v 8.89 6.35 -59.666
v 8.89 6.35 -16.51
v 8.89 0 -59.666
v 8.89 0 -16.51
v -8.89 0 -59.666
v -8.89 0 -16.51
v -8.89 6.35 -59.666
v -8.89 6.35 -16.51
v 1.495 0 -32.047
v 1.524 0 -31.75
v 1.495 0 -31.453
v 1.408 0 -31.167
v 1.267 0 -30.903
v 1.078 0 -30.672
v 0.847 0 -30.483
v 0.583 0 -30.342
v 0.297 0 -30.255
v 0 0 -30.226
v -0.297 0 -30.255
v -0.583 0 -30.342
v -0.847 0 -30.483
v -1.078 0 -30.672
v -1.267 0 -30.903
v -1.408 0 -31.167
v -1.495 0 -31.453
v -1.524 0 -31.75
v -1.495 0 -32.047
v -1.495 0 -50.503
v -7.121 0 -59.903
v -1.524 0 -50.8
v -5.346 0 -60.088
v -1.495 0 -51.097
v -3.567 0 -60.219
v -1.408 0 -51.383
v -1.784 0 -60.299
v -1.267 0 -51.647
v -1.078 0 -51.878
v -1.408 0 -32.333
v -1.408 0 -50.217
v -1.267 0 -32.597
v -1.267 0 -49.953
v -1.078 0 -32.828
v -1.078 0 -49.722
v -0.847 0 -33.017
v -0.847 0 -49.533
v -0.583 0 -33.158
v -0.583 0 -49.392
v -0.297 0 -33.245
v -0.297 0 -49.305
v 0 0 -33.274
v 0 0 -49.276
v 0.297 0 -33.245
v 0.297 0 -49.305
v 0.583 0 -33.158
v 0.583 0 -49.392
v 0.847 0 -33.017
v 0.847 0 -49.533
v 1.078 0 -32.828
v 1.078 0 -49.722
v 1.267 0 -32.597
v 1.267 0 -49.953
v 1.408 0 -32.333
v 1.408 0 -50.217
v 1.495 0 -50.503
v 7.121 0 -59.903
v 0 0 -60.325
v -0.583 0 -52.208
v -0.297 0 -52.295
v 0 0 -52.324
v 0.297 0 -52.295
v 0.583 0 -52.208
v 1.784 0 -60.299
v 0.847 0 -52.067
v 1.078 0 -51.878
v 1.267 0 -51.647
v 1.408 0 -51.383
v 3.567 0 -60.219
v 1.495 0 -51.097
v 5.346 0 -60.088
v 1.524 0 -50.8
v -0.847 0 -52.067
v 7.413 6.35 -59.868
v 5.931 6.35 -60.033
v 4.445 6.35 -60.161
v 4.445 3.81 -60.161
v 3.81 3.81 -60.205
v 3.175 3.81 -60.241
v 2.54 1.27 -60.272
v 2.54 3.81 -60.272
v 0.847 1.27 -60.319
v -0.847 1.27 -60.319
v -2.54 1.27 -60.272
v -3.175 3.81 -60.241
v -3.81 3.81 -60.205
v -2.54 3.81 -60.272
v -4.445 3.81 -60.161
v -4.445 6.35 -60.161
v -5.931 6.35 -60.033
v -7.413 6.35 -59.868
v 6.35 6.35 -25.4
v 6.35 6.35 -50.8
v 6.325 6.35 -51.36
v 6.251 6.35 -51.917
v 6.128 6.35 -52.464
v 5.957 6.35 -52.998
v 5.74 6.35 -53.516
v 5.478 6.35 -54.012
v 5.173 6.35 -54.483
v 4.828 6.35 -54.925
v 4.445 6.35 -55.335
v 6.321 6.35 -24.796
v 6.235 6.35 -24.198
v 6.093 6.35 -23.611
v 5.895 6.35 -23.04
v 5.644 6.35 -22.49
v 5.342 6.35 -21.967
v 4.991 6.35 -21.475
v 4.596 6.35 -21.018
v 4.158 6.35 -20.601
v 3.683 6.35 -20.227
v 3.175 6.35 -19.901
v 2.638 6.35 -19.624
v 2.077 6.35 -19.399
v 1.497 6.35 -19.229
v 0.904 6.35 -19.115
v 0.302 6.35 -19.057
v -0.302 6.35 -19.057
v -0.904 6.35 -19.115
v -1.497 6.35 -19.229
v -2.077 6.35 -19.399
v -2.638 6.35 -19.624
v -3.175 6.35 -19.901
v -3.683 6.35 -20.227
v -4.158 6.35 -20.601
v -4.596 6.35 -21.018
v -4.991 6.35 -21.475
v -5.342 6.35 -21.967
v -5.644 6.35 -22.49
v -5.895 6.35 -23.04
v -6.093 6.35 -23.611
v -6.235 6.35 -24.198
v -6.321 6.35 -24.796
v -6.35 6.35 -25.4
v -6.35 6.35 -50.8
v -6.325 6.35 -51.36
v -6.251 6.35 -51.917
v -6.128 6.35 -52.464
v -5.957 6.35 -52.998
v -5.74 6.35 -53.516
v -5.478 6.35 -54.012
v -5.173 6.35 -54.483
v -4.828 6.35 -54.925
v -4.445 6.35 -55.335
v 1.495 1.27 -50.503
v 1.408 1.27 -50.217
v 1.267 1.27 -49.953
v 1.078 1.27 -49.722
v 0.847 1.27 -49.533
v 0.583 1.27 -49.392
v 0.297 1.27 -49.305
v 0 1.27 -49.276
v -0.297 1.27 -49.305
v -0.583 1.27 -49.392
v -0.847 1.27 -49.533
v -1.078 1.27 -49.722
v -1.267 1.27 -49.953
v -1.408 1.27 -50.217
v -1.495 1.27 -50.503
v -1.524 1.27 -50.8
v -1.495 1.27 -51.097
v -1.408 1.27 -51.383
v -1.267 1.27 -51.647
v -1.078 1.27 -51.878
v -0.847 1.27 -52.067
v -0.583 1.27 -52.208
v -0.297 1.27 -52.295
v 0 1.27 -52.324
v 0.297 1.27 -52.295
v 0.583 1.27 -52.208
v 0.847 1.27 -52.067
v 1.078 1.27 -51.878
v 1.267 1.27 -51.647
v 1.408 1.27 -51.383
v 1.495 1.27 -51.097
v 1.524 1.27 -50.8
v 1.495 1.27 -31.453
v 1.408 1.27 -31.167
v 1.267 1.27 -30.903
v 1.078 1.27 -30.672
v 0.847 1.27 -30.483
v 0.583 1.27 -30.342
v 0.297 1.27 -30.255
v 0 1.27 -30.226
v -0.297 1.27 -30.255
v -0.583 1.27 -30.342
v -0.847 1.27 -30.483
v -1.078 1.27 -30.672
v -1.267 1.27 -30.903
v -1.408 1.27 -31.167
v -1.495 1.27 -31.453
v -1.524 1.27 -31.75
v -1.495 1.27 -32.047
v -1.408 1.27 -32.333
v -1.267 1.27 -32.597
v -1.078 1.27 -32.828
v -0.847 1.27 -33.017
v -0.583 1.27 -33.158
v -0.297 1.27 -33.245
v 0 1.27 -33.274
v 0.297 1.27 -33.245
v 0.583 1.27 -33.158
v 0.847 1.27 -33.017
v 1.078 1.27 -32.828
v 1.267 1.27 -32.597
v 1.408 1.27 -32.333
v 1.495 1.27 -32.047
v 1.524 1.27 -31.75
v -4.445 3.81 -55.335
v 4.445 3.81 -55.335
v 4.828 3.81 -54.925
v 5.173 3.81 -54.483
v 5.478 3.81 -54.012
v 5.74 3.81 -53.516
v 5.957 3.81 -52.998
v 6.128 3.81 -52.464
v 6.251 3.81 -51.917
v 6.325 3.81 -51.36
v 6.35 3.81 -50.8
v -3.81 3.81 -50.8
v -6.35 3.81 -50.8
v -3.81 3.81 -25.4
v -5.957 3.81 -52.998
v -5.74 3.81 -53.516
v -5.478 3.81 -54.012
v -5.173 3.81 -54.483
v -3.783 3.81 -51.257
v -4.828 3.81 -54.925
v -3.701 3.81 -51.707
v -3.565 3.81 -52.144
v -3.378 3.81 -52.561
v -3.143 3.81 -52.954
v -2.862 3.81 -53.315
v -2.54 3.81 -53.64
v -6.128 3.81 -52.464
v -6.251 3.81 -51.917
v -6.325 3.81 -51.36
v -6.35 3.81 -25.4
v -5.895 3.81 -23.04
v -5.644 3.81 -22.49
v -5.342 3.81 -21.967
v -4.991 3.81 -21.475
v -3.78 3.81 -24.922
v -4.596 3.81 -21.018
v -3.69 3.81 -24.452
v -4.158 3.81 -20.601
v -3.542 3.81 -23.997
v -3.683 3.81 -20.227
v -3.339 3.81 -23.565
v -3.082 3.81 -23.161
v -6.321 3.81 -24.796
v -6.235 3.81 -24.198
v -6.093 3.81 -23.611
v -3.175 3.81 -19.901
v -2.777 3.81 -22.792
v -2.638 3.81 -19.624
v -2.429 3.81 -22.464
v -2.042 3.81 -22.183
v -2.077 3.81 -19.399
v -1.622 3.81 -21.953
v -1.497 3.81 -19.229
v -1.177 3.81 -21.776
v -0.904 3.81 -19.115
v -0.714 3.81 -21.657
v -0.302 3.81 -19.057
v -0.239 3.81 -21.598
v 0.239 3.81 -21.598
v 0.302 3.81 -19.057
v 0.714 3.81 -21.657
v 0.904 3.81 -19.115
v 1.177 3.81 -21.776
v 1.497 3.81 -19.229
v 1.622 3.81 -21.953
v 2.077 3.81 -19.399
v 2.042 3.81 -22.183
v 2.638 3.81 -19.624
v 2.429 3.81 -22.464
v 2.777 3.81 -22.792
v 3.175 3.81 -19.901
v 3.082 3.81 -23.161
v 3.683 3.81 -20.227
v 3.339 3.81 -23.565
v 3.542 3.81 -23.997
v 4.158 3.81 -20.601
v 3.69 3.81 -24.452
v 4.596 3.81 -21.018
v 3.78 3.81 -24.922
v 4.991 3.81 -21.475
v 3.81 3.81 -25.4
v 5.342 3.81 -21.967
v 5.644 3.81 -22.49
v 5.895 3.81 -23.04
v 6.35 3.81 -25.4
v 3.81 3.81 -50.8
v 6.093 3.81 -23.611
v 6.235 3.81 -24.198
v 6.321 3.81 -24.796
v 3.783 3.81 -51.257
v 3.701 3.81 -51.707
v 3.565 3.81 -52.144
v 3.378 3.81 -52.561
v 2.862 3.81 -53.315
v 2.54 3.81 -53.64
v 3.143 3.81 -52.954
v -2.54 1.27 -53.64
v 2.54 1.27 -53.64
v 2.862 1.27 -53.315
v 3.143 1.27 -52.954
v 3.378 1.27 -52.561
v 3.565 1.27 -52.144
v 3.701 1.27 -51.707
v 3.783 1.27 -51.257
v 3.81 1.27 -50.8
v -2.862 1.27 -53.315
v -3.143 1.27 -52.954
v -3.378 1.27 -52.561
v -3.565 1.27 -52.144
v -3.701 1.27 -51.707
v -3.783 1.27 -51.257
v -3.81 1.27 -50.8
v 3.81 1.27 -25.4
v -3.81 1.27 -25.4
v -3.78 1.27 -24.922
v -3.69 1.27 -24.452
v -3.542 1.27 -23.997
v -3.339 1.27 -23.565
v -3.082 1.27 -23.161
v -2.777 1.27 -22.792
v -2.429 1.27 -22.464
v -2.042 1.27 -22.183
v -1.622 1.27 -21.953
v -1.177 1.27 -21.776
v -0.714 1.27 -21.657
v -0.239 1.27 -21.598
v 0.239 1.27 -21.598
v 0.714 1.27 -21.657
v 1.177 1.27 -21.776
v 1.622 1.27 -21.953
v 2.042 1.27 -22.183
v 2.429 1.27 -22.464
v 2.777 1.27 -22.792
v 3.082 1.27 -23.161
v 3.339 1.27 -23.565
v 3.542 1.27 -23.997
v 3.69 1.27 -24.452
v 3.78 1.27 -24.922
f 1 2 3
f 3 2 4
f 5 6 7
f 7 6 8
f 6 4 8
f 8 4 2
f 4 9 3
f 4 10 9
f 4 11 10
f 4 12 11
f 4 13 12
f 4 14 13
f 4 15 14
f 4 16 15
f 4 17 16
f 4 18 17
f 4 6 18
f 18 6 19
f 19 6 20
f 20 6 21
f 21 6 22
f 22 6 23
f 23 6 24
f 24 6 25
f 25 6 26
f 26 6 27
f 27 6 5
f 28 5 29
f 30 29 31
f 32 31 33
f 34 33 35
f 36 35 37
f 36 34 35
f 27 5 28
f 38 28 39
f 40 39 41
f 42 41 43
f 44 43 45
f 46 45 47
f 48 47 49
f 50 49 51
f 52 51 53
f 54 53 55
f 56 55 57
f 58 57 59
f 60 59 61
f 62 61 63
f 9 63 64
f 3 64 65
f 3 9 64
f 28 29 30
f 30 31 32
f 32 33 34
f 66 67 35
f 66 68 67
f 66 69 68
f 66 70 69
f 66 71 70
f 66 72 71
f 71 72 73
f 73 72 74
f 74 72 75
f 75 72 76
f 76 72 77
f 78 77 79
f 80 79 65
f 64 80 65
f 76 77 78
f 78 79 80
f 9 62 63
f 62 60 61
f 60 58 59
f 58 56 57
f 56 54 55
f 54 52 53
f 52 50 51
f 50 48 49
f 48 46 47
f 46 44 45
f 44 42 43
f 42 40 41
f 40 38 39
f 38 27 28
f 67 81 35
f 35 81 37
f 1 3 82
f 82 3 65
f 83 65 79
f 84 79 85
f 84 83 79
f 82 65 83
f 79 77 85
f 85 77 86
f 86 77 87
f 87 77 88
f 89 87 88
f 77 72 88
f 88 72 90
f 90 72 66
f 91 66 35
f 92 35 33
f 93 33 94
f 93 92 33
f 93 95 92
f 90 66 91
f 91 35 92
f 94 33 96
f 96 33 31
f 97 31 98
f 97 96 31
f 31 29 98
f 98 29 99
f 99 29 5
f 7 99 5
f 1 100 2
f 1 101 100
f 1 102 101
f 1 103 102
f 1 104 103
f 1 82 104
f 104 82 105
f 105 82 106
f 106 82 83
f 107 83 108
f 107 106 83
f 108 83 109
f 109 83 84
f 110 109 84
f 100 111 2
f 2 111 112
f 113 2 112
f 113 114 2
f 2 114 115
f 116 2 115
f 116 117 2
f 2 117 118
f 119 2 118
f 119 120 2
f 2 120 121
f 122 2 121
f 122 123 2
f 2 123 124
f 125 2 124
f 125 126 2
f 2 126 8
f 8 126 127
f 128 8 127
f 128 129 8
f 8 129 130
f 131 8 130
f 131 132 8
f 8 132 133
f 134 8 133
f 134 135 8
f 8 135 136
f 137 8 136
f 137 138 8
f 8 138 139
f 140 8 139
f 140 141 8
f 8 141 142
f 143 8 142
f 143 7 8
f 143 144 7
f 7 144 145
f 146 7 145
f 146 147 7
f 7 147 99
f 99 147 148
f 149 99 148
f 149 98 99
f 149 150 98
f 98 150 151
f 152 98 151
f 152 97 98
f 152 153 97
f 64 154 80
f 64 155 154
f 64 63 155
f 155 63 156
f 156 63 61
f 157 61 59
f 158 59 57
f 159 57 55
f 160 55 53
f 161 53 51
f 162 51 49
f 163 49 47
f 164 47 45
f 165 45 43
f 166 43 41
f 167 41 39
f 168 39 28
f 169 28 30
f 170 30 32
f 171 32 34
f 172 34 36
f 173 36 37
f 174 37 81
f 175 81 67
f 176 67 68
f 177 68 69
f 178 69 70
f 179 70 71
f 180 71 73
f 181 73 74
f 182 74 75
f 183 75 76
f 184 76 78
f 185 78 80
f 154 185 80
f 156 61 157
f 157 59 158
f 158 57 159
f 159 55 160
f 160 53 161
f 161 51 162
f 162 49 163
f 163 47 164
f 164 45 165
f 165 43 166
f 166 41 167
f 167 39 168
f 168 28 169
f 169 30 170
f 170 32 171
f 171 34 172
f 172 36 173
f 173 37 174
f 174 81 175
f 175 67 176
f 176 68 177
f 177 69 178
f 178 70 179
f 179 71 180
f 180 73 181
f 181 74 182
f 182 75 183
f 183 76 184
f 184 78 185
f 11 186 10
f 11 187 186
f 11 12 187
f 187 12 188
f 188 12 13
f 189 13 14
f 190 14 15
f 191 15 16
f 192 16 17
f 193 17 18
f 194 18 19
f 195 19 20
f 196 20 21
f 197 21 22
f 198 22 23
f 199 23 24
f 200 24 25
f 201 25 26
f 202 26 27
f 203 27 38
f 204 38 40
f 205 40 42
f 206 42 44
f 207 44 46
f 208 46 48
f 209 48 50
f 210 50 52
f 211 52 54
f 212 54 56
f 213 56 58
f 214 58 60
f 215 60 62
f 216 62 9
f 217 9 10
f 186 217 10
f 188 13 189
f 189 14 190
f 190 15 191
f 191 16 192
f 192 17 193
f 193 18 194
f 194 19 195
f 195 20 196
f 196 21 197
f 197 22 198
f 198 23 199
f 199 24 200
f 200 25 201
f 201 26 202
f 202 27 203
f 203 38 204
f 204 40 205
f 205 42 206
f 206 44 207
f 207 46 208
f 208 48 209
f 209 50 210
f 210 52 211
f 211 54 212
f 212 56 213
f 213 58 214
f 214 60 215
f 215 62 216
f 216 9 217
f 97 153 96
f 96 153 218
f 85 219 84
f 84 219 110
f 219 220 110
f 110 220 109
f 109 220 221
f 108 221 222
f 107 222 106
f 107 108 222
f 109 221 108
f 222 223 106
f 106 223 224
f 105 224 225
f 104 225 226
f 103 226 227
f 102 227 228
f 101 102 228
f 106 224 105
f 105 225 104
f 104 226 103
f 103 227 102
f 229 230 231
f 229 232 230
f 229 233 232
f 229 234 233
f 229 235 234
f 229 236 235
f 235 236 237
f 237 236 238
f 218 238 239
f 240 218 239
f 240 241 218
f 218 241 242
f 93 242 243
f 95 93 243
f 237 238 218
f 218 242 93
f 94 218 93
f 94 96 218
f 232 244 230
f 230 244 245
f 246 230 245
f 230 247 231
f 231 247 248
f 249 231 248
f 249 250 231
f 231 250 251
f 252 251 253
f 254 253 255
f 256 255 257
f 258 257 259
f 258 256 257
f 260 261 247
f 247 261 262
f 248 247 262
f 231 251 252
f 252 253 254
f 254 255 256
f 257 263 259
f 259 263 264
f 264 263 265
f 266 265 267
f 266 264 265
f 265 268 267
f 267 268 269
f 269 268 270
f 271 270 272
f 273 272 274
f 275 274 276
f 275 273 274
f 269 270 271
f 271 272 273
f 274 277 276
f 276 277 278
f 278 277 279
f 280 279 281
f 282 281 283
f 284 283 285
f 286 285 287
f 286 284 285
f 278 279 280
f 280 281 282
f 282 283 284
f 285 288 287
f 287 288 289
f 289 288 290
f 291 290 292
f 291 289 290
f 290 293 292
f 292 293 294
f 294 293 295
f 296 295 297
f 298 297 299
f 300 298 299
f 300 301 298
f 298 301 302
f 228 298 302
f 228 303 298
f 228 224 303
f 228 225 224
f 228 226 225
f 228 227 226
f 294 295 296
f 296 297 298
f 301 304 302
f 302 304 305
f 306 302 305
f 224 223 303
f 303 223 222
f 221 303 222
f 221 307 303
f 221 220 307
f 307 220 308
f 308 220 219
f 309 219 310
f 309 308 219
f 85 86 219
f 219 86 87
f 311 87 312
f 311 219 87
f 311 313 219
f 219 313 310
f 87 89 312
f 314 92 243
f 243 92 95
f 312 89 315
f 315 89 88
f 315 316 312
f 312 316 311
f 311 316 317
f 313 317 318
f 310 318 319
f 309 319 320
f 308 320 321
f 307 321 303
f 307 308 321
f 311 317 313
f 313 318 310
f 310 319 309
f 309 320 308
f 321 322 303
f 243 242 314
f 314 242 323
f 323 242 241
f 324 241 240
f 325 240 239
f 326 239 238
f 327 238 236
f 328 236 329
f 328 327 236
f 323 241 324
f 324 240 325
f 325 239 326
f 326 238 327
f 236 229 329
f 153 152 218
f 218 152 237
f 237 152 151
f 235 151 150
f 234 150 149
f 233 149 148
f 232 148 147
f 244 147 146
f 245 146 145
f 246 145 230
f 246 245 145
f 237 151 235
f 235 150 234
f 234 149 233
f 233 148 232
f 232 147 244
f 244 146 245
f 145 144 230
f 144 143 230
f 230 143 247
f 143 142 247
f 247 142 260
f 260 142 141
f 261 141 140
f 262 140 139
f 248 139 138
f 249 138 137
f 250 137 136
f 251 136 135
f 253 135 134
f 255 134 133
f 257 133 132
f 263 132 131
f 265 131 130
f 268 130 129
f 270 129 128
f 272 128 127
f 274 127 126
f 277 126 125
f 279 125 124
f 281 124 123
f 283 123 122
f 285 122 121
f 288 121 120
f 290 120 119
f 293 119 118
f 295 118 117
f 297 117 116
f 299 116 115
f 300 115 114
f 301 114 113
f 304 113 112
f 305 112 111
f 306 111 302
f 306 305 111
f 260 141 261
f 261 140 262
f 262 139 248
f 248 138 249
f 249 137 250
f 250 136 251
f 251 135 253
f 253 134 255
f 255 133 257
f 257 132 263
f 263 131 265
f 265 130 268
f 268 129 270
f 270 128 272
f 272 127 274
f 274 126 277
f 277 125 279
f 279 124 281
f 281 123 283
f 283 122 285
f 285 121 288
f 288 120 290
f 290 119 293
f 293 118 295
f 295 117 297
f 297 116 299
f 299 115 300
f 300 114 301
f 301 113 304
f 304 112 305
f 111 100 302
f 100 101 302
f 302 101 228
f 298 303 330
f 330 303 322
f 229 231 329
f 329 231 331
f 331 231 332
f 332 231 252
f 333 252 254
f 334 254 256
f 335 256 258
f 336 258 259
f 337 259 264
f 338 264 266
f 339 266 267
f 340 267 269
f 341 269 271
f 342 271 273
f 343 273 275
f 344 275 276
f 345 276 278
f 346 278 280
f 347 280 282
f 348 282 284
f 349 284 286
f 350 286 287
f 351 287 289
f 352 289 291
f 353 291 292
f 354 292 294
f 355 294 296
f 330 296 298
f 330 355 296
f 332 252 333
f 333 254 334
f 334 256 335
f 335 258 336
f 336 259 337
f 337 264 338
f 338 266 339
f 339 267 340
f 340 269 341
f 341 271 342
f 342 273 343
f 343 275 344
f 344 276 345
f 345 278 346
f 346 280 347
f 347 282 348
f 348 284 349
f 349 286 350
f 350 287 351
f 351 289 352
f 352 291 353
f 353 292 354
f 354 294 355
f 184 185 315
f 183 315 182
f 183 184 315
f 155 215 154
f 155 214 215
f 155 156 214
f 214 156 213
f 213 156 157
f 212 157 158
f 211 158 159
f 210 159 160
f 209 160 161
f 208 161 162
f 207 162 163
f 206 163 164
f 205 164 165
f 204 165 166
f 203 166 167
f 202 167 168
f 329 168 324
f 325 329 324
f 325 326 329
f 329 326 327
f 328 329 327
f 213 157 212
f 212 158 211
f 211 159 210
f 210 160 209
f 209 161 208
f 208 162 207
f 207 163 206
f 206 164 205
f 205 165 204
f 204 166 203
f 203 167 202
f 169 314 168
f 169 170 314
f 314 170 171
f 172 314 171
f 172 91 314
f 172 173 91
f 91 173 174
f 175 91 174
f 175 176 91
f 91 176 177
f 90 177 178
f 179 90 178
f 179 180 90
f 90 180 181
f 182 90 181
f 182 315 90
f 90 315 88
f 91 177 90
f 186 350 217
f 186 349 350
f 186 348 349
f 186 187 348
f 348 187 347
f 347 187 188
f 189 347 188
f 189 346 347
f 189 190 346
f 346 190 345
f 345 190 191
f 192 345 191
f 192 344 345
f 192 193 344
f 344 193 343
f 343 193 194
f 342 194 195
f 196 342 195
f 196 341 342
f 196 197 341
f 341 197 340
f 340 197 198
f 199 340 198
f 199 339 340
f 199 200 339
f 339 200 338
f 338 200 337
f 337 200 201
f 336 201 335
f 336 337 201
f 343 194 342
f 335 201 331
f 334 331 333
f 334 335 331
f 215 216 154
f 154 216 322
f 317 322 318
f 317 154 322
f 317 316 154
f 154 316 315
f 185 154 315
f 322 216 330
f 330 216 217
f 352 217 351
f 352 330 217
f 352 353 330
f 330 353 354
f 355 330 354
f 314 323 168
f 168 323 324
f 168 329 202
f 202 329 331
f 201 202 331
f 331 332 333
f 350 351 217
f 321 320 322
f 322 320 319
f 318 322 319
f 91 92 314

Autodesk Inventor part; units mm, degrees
ref_plane "YZ Plane" through (0, 0, 0) normal (1, 0, 0) x (0, 1, 0)
ref_plane "XZ Plane" through (0, 0, 0) normal (0, 1, 0) x (-1, 0, 0)
sketch "Sketch1" plane through (0, 0, 0) normal (0, 1, 0) x (-1, 0, 0)
  circle A0 centre (0, 0) radius 60.325
  dimension "d0" = 120.65
extrude "Extrusion1" add sketch "Sketch1" along normal blind 6.35
sketch "Sketch2" plane through (0, 6.35, 0) normal (0, 1, 0) x (1, 0, 0)
  circle A0 centre (0, 0) radius 60.325 projected
  arc A1 (3.81, 50.8) -> (-3.81, 50.8) centre (0, 50.8) ccw
  arc A2 (-3.81, 25.4) -> (3.81, 25.4) centre (0, 25.4) ccw
  line L0 (-3.81, 50.8) -> (-3.81, 25.4)
  line L1 (3.81, 50.8) -> (3.81, 25.4)
  dimension "d3" = 25.4
  dimension "d4" = 7.62
  dimension "d5" = 50.8
extrude "Extrusion2" cut sketch "Sketch2" against normal blind 5.08 contours L1 A2 L0 A1
sketch "Sketch3" plane through (0, 6.35, 0) normal (0, 1, 0) x (1, 0, 0)
  line L0 (-3.81, 25.4) -> (-3.81, 50.8) projected
  arc A0 (3.81, 50.8) -> (-3.81, 50.8) centre (0, 50.8) ccw projected
  line L1 (3.81, 50.8) -> (3.81, 25.4) projected
  arc A1 (-3.81, 25.4) -> (3.81, 25.4) centre (0, 25.4) ccw projected
  line L2 (6.35, 25.4) -> (6.35, 50.8)
  arc A2 (6.35, 50.8) -> (-6.35, 50.8) centre (0, 50.8) ccw
  line L3 (-6.35, 50.8) -> (-6.35, 25.4)
  arc A3 (-6.35, 25.4) -> (6.35, 25.4) centre (0, 25.4) ccw
  dimension "d8" = 2.54
extrude "Extrusion3" cut sketch "Sketch3" against normal blind 2.54
sketch "Sketch4" plane through (0, 3.81, 0) normal (0, 1, 0) x (1, 0, 0)
  arc A0 (3.81, 50.8) -> (-3.81, 50.8) centre (0, 50.8) ccw projected
  line L0 (-2.54, 67.2746) -> (2.54, 67.2746)
  line L1 (2.54, 67.2746) -> (2.54, 48.8018)
  line L2 (2.54, 48.8018) -> (-2.54, 48.8018)
  line L3 (-2.54, 48.8018) -> (-2.54, 67.2746)
  point P0 (0, 0)
  point P1 (0, 48.8018)
  dimension "d11" = 5.08
extrude "Extrusion4" cut sketch "Sketch4" against normal blind 2.54
sketch "Sketch5" plane through (0, 6.35, 0) normal (0, 1, 0) x (1, 0, 0)
  arc A0 (6.35, 50.8) -> (-6.35, 50.8) centre (0, 50.8) ccw projected
  line L0 (4.445, 43.4525) -> (-4.445, 43.4525)
  line L1 (-4.445, 43.4525) -> (-4.445, 150.3399)
  line L2 (-4.445, 150.3399) -> (4.445, 150.3399)
  line L3 (4.445, 150.3399) -> (4.445, 43.4525)
  point P0 (0, 43.4525)
  dimension "d14" = 8.89
extrude "Extrusion5" cut sketch "Sketch5" against normal blind 2.54
sketch "Sketch6" plane through (0, 1.27, 0) normal (0, 1, 0) x (1, 0, 0)
  arc A0 (-2.54, 53.6398) -> (-3.81, 50.8) centre (0, 50.8) ccw projected
  arc A1 (-3.81, 25.4) -> (3.81, 25.4) centre (0, 25.4) ccw projected
  circle A2 centre (0, 50.8) radius 1.524
  circle A3 centre (0, 31.75) radius 1.524
  dimension "d17" = 6.35
  dimension "d18" = 19.05
  dimension "d19" = 3.048
extrude "Extrusion6" cut sketch "Sketch6" against normal through all
sketch "Sketch8" plane through (0, 6.35, 0) normal (0, 1, 0) x (1, 0, 0)
  arc A0 (6.35, 50.8) -> (4.445, 55.3348) centre (0, 50.8) ccw projected
  circle A1 centre (25.4, 38.1) radius 6.35
  dimension "d25" = 12.7
  dimension "d26" = 25.4
  dimension "d27" = 12.7
extrude "Extrusion8" cut sketch "Sketch8" against normal through all
ref_plane "Work Plane1" through (0, 25.4, 25.4) normal (0, 1, 0) x (1, 0, 0)
sketch "Sketch11" plane through (0, 25.4, 25.4) normal (0, 1, 0) x (1, 0, 0)
  circle A0 centre (0, 0) radius 6.35 projected
  circle A1 centre (0, 0) radius 1.7145
  point P0 (0, 25.4)
  dimension "d41" = 3.429
extrude "Extrusion11" cut sketch "Sketch11" against normal through all contours A1
pattern_circular "Circular Pattern2" count 3 over 360 about axis through (0, 0, 0) along (0, 1, 0) of "Extrusion2", "Extrusion3", "Extrusion4", "Extrusion5", "Extrusion6", "Extrusion8", "Extrusion11"
sketch "Sketch12" plane through (0, 6.35, 0) normal (0, 1, 0) x (1, 0, 0)
  line L0 (6.35, 50.8) -> (6.35, 25.4) projected
  arc A0 (-6.35, 25.4) -> (6.35, 25.4) centre (0, 25.4) ccw projected
  line L1 (-6.35, 25.4) -> (-6.35, 50.8) projected
  line L2 (8.89, 16.51) -> (-8.89, 16.51)
  line L3 (-8.89, 16.51) -> (-8.89, 73.5525)
  line L4 (-8.89, 73.5525) -> (8.89, 73.5525)
  line L5 (8.89, 73.5525) -> (8.89, 16.51)
  dimension "d47" = 2.54
  dimension "d48" = 2.54
  dimension "d49" = 2.54
extrude "Extrusion12" cut sketch "Sketch12" against normal through all keep common part
properties part number "Attachment Point - Female"
